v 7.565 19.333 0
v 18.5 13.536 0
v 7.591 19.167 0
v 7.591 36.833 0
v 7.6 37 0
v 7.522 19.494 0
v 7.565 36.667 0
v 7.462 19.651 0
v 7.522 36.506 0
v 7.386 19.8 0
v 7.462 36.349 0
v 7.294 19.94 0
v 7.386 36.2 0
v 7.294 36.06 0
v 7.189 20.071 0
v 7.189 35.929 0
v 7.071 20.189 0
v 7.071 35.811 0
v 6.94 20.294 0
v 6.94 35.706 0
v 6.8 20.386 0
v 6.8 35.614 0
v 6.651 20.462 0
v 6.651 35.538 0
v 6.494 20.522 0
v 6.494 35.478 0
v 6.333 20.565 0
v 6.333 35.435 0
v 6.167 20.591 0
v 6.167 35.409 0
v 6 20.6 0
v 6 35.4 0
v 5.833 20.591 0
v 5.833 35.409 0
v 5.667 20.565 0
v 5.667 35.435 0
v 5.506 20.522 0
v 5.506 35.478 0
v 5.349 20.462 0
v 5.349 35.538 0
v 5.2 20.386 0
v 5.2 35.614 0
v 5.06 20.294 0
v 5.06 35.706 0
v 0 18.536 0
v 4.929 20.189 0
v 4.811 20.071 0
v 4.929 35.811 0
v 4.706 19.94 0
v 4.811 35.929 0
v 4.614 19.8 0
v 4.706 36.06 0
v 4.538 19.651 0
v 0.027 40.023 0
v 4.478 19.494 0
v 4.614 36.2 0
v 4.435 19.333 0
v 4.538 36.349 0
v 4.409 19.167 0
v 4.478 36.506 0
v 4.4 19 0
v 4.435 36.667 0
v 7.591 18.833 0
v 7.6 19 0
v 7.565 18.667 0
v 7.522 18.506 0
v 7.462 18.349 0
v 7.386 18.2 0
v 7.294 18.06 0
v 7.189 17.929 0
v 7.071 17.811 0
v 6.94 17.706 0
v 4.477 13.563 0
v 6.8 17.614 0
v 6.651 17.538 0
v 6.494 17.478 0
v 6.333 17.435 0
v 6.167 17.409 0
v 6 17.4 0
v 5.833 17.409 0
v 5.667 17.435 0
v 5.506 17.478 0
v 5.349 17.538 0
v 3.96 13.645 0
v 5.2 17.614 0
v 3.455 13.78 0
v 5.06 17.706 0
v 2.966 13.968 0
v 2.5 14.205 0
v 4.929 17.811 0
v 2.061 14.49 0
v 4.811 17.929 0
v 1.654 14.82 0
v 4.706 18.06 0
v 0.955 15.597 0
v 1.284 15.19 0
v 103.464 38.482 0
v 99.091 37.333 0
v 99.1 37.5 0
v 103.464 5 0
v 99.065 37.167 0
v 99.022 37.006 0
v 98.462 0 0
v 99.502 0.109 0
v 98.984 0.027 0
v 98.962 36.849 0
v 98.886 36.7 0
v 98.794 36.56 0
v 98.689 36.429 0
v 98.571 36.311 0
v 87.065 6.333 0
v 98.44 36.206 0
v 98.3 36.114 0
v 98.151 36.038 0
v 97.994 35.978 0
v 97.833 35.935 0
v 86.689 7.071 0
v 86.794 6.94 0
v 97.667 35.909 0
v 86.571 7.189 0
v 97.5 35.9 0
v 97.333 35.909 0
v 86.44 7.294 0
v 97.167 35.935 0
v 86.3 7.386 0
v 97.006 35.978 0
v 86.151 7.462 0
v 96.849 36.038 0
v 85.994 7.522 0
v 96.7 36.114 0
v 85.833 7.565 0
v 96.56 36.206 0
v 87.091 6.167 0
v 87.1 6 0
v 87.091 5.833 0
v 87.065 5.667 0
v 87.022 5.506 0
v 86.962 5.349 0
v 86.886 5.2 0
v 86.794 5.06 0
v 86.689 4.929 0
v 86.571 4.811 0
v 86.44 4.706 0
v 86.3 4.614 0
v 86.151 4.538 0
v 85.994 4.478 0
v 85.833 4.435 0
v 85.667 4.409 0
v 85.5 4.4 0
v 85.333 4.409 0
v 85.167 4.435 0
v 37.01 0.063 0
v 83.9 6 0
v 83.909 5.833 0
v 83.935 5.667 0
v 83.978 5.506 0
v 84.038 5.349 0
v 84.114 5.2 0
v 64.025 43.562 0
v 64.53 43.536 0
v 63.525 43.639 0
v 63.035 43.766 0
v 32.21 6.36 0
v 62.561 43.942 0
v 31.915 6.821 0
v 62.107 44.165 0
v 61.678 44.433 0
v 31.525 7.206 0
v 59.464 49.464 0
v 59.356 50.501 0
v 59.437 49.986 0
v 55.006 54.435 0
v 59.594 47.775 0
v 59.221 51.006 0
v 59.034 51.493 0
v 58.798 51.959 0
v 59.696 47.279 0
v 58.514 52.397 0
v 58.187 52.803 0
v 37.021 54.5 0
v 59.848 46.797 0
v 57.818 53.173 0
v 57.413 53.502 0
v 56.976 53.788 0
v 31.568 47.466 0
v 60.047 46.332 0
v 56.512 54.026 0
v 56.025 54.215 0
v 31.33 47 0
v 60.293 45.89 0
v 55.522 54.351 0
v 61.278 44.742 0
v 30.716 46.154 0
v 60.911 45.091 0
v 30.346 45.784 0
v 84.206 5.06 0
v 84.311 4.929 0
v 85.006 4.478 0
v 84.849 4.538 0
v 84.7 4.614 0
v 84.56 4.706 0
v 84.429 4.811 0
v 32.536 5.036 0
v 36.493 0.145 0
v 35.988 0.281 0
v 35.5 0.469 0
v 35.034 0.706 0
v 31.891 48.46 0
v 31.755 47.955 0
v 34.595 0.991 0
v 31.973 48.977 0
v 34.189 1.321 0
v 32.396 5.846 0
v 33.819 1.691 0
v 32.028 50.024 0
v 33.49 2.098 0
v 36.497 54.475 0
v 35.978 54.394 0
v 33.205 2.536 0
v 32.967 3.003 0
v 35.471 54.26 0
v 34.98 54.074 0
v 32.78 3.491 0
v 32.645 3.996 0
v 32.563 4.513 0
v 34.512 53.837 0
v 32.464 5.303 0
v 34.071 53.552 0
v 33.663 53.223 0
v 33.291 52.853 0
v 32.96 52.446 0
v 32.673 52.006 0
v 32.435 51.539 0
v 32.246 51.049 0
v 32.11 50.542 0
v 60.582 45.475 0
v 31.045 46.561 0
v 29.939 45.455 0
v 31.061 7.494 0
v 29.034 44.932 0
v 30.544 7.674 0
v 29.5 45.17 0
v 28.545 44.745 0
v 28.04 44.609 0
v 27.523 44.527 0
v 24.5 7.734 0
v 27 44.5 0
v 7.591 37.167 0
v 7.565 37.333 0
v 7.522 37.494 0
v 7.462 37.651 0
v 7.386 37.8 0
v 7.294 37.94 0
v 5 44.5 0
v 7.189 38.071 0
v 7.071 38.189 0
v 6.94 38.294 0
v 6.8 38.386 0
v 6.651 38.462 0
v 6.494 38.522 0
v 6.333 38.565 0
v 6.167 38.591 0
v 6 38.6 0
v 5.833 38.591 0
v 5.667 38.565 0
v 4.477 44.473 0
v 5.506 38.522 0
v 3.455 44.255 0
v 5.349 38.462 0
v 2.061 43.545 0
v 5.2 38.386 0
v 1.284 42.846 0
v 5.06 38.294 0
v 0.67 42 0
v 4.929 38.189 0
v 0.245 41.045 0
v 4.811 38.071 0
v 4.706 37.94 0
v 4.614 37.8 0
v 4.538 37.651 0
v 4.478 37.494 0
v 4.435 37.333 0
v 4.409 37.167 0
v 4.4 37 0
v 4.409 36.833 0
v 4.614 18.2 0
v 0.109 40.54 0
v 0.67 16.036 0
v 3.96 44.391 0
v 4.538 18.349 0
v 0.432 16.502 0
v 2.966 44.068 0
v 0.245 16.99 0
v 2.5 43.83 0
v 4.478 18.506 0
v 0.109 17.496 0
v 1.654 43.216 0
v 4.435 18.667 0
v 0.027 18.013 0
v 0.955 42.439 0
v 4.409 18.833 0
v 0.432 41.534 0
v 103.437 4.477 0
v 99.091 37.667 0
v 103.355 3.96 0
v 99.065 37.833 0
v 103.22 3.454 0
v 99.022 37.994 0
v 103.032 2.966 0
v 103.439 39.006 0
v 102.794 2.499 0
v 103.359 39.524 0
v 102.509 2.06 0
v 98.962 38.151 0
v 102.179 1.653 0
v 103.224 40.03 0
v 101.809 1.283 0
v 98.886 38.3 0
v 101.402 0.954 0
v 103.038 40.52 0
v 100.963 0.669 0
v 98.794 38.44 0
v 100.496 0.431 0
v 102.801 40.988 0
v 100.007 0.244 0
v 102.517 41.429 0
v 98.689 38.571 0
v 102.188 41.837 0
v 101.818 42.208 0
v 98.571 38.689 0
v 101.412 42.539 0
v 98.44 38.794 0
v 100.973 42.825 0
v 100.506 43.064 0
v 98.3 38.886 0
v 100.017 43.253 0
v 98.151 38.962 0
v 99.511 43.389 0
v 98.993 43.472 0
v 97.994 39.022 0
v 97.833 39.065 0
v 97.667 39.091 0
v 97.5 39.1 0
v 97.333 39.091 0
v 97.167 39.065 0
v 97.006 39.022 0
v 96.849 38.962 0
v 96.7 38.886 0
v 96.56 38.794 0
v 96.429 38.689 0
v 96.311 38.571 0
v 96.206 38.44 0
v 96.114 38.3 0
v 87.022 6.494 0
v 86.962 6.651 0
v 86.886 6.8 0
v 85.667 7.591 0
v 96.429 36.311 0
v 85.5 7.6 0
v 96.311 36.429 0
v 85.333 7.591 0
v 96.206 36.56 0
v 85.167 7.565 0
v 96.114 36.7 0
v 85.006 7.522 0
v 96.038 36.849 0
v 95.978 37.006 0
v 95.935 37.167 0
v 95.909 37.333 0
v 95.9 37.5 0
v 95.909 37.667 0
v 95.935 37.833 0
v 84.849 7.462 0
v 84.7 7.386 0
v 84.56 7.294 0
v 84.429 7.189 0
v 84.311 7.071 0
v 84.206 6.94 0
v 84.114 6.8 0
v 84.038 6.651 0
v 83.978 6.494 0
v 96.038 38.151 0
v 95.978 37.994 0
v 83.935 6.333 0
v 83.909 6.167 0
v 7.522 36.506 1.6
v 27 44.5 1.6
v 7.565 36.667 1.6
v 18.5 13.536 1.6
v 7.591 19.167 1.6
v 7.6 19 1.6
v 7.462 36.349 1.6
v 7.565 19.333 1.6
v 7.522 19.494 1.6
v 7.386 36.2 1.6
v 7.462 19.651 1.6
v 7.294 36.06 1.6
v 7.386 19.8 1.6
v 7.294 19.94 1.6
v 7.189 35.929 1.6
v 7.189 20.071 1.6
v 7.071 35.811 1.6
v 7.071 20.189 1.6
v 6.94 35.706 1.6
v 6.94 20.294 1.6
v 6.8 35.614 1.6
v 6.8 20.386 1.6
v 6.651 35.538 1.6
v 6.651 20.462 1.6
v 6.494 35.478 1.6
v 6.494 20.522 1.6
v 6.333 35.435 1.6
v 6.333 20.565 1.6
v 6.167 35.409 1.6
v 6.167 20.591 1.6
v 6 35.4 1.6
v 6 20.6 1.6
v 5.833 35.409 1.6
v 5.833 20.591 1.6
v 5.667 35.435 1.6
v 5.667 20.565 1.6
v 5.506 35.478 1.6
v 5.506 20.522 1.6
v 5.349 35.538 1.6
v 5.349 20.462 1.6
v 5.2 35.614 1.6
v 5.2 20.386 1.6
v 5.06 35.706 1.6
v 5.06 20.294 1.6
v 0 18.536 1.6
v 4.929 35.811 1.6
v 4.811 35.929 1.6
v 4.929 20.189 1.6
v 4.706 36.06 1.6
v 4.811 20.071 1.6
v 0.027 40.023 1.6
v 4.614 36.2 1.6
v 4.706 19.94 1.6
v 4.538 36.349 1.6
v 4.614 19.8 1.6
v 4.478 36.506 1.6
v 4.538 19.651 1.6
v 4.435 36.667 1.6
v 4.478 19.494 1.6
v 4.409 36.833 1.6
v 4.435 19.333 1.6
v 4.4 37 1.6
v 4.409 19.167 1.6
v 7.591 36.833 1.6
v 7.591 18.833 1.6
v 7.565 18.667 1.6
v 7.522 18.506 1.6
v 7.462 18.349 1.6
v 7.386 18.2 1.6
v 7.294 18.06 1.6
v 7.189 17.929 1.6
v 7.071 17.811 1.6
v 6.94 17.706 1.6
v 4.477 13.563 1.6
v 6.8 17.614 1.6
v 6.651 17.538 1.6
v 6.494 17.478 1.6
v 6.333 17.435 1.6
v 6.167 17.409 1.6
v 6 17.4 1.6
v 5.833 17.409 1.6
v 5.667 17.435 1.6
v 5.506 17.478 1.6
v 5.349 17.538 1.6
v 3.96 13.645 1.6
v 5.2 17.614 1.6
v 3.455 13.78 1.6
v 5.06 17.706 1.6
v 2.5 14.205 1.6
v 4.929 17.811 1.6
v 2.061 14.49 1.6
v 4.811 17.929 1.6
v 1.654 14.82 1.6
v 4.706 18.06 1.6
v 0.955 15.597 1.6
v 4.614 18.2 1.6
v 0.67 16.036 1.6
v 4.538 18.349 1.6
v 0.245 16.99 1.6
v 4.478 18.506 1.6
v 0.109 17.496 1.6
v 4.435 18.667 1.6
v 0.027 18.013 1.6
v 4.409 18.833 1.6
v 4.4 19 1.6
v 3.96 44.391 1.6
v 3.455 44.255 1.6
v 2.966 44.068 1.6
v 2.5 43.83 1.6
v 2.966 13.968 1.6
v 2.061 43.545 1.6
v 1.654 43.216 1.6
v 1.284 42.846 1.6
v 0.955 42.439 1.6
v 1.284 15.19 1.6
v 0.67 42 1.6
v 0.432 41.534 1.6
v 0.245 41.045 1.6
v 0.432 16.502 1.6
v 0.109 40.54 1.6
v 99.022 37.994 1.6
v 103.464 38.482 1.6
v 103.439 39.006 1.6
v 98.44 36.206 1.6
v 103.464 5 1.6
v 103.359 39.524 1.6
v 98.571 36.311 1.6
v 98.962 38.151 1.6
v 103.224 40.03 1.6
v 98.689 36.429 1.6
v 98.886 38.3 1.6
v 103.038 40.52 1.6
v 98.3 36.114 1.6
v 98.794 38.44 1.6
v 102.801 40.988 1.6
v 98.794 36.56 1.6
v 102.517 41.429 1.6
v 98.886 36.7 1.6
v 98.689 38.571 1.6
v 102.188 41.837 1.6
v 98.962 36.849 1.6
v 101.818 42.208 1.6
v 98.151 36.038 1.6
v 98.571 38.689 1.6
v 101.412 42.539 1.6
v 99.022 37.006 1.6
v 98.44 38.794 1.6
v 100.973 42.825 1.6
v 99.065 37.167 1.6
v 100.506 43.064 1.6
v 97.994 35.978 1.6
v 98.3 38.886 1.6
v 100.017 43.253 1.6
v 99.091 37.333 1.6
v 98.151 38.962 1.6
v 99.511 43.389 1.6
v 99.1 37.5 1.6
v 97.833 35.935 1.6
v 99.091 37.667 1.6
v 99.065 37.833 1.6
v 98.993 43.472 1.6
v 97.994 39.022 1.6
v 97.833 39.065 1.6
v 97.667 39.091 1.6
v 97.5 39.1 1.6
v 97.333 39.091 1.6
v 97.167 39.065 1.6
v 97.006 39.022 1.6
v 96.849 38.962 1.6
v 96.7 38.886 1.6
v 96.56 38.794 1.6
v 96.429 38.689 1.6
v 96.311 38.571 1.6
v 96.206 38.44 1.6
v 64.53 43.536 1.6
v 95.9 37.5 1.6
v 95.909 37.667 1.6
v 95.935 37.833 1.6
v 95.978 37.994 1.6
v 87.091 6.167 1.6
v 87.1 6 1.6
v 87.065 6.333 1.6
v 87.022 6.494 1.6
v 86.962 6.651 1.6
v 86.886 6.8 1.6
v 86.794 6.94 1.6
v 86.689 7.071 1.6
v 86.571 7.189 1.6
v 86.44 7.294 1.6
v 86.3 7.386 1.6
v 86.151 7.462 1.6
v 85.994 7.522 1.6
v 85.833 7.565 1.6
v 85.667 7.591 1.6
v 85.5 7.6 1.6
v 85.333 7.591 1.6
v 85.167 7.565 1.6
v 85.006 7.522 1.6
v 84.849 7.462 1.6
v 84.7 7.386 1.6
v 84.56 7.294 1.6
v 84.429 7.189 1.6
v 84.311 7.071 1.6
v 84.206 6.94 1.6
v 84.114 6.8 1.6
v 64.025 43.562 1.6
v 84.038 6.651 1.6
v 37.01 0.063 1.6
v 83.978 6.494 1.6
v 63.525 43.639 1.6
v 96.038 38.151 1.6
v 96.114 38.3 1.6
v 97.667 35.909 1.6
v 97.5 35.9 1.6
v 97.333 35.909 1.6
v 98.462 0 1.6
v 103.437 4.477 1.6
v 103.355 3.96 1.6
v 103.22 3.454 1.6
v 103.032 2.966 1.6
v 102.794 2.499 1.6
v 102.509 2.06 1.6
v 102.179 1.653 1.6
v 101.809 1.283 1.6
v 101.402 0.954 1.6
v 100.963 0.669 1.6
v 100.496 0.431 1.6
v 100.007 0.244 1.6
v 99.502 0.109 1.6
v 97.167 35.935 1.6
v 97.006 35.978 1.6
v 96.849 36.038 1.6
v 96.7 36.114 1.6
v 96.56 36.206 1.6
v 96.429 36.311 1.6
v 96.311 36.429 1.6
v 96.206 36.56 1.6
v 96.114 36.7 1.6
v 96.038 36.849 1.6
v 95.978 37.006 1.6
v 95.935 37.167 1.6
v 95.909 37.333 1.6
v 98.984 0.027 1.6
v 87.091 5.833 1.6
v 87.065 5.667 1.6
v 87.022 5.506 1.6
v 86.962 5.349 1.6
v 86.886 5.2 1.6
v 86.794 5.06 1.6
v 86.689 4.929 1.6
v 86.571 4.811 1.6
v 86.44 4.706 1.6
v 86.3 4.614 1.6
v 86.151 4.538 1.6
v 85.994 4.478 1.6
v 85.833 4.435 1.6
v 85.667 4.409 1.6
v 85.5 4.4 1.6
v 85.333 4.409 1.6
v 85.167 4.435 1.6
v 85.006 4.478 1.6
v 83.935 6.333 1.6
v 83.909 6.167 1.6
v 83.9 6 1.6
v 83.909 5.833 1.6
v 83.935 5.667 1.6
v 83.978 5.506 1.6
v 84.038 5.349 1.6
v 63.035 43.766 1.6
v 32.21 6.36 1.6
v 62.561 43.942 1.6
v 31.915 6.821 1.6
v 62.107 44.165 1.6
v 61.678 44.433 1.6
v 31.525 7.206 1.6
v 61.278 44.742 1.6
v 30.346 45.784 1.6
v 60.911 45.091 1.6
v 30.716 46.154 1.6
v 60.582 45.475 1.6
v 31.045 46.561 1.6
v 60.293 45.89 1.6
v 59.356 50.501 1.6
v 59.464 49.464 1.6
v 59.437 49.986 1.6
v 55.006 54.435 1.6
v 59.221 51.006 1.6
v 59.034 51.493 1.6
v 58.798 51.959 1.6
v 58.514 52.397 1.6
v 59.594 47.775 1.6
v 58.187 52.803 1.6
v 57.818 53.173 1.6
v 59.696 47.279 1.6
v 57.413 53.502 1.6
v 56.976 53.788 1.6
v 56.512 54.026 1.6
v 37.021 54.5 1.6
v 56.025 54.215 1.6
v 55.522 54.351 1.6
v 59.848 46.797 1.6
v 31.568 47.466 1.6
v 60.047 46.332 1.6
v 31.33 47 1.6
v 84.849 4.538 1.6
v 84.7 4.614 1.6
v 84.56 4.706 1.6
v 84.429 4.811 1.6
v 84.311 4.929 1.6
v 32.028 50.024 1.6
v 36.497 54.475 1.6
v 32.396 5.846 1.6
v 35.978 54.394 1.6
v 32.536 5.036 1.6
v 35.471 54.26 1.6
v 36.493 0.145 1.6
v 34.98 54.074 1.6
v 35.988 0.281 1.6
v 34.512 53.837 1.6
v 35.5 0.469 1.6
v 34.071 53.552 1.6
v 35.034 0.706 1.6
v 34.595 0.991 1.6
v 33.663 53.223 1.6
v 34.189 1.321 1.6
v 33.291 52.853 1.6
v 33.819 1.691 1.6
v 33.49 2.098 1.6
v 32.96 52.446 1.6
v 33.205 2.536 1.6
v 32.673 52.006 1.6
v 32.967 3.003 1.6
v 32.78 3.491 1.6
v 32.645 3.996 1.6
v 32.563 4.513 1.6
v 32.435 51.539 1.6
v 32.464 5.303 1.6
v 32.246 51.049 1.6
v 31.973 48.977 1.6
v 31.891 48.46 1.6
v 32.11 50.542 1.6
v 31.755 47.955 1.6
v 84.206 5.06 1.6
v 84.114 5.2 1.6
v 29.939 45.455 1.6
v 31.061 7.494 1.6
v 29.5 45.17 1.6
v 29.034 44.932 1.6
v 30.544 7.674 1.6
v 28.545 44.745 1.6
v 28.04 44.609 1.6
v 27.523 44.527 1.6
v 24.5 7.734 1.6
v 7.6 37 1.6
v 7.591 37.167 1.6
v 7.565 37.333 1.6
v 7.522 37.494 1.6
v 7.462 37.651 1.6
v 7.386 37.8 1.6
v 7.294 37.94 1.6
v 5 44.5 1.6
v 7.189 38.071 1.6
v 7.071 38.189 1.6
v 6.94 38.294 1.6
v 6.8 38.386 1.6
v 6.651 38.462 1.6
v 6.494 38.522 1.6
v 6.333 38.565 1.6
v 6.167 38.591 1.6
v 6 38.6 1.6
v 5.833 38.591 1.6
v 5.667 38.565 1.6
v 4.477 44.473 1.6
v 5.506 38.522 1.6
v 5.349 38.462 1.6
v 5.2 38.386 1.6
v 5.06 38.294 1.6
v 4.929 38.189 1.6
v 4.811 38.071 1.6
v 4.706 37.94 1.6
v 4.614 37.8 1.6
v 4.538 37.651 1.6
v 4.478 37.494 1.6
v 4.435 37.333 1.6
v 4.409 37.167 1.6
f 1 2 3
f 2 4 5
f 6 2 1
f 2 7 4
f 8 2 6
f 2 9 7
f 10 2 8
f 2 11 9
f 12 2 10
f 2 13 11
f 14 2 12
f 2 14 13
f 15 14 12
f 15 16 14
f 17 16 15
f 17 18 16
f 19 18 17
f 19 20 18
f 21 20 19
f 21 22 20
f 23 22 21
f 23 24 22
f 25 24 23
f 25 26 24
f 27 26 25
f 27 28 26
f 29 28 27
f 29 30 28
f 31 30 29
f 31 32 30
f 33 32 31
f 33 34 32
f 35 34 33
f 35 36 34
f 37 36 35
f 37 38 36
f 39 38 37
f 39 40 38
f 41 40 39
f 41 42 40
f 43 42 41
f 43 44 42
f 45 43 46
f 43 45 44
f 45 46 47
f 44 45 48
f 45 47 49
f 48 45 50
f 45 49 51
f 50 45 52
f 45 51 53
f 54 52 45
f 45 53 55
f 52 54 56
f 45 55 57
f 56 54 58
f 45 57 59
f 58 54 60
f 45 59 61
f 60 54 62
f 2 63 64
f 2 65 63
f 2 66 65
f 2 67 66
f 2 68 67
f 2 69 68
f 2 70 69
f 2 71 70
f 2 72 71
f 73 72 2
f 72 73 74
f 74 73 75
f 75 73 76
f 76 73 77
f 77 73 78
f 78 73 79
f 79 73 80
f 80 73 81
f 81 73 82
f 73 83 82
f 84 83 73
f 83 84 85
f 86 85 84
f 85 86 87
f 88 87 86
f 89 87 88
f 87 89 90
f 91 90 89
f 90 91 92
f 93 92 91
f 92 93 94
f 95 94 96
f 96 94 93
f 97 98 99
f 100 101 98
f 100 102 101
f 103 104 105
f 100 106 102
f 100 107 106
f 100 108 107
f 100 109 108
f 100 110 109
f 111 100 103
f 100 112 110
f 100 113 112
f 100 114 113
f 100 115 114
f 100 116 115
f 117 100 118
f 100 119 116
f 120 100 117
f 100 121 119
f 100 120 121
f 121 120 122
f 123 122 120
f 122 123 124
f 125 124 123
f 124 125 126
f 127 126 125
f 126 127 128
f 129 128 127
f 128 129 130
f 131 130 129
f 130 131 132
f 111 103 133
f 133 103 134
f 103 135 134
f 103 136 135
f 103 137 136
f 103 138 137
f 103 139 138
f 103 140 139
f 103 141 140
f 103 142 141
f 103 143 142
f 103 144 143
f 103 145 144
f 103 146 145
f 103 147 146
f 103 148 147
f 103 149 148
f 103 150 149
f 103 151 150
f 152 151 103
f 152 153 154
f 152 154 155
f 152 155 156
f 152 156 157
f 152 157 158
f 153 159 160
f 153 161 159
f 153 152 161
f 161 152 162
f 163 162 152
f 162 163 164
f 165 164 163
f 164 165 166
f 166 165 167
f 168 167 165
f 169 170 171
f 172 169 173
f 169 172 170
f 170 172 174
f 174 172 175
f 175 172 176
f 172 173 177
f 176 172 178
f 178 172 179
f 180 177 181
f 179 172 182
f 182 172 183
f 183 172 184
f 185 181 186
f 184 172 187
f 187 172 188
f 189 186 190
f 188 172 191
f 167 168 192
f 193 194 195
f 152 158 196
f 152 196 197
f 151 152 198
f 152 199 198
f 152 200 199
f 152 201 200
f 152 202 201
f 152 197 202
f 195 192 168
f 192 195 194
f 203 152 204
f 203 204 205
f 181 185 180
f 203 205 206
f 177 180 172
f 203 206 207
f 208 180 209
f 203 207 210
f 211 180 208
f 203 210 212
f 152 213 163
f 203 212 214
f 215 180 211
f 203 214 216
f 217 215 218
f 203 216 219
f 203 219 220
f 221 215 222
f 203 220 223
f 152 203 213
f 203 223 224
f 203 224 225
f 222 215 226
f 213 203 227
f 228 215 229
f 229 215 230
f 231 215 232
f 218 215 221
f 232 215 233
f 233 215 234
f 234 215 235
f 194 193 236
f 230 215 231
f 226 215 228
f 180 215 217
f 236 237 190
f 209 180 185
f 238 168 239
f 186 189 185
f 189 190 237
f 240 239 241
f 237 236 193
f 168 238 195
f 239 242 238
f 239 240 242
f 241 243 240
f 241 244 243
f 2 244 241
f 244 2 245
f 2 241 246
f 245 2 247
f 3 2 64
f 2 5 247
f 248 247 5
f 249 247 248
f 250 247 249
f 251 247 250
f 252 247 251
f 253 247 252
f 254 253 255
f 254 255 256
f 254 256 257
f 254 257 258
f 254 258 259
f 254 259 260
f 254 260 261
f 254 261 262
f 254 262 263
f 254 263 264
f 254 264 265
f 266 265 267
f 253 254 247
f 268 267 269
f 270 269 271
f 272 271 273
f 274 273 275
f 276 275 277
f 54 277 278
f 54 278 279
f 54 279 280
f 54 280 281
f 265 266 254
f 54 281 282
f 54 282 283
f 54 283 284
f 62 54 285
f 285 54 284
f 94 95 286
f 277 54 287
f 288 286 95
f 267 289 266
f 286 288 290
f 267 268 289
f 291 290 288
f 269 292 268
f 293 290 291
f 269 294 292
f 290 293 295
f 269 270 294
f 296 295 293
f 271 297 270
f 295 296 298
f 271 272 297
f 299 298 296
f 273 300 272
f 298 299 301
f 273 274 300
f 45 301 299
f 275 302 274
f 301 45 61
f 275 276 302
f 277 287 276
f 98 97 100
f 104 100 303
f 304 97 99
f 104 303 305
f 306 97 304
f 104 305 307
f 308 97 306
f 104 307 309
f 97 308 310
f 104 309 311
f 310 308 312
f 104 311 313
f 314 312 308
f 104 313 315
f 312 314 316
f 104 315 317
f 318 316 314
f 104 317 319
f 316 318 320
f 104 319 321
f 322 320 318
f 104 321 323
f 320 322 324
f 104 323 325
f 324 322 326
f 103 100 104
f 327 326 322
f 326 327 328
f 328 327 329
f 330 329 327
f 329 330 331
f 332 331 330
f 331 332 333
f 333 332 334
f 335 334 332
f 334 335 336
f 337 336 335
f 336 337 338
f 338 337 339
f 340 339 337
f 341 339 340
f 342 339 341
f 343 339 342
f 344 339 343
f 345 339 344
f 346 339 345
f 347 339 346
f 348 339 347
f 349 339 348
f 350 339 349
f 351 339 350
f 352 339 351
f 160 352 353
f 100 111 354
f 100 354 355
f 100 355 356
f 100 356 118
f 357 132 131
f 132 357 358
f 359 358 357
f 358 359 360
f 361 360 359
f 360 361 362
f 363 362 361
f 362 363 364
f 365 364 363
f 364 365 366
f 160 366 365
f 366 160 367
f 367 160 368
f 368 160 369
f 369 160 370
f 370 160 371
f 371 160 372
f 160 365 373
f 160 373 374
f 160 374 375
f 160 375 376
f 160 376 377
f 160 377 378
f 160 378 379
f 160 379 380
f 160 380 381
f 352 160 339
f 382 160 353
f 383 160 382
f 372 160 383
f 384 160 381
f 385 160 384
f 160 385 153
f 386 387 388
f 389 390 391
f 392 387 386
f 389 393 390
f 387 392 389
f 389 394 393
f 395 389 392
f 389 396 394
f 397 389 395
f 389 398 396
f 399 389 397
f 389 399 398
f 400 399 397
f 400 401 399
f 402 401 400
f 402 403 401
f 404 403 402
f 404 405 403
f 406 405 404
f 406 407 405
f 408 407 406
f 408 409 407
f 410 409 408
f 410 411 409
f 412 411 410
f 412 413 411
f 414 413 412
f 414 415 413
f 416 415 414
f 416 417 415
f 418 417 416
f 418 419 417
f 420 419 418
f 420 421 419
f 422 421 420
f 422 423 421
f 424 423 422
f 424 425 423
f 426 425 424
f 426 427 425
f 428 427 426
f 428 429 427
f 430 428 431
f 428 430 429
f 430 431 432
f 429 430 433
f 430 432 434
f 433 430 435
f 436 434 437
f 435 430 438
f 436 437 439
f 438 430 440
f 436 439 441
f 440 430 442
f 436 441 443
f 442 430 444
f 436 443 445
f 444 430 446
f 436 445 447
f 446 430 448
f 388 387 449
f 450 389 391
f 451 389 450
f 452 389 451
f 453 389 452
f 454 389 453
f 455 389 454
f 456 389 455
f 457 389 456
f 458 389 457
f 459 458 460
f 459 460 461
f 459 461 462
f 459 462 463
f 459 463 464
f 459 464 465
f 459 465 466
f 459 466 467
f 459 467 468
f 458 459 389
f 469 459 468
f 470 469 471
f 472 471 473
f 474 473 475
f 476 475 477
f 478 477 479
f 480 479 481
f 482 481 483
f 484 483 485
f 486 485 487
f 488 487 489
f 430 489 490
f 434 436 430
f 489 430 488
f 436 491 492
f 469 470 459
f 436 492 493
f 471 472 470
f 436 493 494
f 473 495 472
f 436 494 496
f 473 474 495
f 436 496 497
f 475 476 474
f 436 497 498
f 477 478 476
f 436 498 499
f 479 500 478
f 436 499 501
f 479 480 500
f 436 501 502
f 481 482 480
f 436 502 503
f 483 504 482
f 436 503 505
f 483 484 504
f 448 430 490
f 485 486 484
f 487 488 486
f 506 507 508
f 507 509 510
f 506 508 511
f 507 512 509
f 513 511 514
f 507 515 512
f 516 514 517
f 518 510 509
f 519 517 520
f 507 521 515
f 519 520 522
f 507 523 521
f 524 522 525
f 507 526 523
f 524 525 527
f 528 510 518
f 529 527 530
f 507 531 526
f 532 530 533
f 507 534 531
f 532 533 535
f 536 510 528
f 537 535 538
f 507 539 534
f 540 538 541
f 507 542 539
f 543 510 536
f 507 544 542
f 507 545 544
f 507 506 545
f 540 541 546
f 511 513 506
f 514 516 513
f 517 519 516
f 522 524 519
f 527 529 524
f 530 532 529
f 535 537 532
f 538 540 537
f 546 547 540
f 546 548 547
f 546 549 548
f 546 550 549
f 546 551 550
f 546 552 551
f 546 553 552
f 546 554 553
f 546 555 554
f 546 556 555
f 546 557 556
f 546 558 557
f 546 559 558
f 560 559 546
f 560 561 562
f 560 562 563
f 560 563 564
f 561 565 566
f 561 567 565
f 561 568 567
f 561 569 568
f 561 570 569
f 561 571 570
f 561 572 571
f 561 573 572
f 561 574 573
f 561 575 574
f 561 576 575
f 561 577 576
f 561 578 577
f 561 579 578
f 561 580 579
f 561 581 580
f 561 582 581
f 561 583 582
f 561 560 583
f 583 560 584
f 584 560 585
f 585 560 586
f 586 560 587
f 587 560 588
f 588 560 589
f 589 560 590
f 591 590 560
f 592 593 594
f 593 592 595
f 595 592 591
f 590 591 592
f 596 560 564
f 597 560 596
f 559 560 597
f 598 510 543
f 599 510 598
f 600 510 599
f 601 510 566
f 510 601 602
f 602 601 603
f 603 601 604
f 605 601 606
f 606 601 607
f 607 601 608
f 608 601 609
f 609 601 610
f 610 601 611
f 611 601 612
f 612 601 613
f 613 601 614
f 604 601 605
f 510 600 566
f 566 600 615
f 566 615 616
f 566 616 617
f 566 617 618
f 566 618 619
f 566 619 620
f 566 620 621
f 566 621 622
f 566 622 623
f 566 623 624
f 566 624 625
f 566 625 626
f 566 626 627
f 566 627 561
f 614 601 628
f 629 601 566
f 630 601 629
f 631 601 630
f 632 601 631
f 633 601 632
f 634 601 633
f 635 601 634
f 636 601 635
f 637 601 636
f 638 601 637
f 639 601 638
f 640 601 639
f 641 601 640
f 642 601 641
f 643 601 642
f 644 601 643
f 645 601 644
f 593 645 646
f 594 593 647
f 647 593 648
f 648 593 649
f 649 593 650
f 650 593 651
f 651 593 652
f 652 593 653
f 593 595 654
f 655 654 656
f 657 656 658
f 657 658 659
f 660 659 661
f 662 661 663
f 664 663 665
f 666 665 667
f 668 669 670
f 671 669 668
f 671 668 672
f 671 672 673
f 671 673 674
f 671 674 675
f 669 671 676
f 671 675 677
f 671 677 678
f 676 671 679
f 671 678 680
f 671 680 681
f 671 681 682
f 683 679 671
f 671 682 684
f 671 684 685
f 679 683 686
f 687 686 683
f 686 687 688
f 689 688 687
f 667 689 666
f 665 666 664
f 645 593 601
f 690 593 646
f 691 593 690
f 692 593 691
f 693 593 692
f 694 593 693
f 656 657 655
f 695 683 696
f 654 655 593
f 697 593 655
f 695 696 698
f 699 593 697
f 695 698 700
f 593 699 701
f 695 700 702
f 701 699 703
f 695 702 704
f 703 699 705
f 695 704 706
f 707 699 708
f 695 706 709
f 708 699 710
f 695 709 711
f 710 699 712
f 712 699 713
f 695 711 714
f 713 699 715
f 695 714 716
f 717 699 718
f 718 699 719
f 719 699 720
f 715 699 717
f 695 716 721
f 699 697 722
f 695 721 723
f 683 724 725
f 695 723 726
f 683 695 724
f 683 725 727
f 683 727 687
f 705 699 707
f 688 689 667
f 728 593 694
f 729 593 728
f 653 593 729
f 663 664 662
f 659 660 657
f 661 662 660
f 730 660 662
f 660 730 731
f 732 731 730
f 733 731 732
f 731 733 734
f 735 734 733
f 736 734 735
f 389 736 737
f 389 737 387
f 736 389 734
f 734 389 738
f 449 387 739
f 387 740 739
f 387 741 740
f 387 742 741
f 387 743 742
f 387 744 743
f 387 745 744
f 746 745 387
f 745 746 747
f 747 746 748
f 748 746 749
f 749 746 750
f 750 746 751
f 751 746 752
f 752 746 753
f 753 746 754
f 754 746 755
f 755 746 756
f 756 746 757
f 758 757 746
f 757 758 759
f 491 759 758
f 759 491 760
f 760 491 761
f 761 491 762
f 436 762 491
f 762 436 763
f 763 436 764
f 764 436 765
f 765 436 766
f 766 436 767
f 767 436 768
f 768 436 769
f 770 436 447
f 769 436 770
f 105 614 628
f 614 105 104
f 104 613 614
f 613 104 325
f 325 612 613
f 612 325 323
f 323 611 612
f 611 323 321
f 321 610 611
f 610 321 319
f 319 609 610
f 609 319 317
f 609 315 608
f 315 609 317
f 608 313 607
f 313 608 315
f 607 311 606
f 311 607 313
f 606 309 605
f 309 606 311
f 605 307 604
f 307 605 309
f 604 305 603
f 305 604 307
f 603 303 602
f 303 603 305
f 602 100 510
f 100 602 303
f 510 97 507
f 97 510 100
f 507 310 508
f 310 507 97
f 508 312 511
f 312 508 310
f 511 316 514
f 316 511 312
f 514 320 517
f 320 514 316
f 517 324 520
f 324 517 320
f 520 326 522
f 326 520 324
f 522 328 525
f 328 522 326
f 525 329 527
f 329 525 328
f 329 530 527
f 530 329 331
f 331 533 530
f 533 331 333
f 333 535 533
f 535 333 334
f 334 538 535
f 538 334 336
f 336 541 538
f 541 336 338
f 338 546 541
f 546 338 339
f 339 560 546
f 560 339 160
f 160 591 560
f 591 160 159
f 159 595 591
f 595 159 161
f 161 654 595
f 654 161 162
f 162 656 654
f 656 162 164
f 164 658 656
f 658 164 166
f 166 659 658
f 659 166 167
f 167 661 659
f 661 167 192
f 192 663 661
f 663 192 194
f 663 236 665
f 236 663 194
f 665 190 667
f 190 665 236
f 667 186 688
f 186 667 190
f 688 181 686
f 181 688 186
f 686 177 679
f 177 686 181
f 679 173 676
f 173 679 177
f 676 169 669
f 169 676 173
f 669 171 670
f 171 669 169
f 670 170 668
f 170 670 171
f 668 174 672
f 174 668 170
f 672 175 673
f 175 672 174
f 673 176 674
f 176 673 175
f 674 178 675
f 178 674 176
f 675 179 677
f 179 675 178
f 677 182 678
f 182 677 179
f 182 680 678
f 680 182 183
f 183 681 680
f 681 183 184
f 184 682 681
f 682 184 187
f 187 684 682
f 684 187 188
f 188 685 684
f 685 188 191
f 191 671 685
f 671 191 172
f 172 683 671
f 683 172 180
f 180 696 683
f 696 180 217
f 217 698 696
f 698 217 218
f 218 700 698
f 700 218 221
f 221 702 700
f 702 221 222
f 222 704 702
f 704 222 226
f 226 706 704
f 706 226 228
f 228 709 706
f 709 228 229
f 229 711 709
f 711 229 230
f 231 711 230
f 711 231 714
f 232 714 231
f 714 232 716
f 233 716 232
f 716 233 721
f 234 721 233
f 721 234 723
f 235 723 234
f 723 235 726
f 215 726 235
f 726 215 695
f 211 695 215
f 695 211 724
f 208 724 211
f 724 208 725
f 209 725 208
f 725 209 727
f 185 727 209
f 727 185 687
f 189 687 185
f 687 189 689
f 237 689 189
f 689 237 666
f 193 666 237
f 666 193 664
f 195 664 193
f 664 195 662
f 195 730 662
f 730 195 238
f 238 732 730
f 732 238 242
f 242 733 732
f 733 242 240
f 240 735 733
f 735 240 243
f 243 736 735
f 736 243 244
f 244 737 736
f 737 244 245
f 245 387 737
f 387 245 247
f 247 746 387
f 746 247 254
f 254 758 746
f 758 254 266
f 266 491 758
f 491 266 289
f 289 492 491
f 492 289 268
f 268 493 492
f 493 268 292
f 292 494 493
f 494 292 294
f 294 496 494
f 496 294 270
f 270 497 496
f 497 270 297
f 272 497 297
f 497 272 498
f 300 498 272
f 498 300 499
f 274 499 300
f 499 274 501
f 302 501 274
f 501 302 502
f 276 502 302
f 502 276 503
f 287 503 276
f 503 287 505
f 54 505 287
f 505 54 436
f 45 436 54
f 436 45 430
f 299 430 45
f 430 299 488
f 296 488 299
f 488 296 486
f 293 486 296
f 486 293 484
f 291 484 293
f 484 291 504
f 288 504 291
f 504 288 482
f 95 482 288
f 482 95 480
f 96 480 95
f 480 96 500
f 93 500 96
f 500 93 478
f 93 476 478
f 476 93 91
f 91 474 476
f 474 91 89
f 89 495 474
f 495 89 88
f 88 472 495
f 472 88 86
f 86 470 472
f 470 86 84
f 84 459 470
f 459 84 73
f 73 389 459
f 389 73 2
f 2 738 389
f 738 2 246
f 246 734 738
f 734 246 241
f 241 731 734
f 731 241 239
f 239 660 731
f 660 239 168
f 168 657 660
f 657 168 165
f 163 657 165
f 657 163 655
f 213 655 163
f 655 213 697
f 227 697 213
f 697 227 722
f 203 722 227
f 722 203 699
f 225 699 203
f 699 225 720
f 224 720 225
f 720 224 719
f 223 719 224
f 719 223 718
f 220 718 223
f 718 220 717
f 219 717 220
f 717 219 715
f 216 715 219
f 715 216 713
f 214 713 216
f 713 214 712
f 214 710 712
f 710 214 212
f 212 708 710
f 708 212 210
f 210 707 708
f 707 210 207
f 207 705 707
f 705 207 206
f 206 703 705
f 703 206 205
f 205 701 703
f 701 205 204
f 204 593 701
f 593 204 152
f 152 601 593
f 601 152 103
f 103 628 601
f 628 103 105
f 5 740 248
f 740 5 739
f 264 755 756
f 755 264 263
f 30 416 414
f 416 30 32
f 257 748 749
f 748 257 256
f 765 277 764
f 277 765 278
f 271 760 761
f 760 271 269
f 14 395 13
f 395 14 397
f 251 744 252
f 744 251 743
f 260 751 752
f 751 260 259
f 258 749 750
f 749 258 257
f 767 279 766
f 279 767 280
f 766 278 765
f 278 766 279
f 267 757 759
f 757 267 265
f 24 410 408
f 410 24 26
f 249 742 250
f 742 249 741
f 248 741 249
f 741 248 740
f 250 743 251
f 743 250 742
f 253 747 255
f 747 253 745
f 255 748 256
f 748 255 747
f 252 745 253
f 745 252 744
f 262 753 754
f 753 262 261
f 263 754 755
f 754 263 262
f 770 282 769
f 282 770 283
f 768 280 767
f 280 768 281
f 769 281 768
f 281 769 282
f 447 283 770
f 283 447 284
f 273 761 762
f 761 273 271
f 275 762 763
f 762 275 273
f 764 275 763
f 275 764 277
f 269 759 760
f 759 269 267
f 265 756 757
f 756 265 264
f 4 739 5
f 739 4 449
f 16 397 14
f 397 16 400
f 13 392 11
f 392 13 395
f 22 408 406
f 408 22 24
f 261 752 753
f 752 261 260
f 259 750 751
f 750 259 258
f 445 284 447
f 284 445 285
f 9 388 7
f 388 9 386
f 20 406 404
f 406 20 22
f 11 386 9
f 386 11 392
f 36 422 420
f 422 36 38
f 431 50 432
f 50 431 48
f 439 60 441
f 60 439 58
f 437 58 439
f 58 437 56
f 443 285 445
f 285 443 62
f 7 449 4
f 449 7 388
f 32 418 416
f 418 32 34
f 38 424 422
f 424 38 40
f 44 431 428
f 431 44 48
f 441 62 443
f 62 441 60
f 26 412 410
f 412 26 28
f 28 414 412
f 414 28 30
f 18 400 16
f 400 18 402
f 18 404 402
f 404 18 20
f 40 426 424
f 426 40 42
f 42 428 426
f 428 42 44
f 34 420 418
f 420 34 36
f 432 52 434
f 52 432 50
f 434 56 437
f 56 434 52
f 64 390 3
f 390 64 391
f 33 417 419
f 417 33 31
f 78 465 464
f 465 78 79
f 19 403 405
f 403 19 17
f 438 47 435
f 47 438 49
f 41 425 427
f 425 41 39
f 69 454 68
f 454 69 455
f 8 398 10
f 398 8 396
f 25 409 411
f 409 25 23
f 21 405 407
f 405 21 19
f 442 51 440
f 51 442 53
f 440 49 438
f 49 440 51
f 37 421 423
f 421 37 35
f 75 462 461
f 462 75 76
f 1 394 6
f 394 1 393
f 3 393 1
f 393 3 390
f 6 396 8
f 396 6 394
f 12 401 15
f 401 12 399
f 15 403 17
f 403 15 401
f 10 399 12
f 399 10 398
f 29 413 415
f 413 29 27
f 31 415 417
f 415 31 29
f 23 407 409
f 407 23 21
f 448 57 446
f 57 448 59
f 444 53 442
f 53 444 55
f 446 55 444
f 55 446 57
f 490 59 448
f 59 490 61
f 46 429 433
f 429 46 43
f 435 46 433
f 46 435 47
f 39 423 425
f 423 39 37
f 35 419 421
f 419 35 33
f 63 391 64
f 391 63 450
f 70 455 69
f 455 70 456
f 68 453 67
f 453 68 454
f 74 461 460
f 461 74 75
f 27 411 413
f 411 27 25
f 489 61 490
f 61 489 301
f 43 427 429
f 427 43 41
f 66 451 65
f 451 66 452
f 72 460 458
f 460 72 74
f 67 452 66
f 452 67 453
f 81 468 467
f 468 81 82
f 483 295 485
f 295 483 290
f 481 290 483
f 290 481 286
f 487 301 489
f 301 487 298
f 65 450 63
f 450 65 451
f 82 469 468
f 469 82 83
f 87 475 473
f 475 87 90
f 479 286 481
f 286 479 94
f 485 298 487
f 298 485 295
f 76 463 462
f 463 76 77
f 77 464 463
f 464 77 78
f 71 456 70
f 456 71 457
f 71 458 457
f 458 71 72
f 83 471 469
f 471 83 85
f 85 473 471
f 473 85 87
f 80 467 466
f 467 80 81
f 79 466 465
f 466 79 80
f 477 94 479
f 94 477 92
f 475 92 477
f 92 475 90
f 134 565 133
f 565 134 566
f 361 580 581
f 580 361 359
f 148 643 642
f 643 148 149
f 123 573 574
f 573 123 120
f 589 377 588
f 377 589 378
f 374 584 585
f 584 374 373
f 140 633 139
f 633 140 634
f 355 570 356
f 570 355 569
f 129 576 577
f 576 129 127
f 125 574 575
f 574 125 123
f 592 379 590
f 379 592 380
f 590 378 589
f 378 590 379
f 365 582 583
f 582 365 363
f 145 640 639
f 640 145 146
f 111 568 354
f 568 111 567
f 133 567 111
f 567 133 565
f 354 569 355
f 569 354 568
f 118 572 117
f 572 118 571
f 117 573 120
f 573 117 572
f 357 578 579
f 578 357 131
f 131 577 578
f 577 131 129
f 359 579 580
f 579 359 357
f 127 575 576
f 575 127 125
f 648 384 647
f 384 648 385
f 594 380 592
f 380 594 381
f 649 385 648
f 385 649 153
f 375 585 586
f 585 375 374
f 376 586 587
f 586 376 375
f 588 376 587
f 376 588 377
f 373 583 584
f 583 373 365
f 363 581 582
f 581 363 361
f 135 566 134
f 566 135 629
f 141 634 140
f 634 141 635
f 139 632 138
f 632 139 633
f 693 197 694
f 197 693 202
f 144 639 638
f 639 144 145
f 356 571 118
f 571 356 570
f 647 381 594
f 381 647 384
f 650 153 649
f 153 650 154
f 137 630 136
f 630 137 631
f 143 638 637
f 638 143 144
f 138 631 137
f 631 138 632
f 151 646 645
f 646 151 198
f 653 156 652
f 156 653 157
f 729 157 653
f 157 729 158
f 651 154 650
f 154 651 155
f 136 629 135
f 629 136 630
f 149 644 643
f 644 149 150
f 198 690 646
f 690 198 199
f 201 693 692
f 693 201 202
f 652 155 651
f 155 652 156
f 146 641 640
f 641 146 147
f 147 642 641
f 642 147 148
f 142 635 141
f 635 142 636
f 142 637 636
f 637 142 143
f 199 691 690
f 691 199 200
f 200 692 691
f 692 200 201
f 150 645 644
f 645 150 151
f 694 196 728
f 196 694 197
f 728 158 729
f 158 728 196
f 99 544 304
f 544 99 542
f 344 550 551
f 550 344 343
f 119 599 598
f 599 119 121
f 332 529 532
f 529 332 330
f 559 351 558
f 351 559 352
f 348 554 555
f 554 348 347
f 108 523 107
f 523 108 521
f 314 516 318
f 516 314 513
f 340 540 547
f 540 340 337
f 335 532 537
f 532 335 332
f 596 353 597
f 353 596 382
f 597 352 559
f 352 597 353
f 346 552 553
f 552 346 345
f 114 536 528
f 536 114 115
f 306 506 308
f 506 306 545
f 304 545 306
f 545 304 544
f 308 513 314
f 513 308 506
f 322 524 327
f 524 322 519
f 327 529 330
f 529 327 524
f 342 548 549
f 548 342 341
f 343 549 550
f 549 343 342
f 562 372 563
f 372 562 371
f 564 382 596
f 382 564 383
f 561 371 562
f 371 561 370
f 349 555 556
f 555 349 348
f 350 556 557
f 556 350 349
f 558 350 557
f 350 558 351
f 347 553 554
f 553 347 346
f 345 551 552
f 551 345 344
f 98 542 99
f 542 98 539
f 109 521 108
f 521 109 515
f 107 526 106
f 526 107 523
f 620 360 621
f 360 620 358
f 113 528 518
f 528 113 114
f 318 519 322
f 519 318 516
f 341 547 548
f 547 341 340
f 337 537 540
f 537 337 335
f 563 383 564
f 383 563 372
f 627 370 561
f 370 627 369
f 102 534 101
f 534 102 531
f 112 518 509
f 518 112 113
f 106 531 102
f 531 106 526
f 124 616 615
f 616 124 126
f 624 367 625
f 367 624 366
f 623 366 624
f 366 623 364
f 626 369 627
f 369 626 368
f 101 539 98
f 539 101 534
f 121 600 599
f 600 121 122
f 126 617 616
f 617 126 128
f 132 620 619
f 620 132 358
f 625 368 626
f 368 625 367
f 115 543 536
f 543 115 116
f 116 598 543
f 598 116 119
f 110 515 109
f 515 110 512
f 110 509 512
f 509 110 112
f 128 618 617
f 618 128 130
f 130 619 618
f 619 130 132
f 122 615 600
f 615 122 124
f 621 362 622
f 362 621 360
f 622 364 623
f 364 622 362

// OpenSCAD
// BMO Controller - Exact G-Code Reconstruction
// 154 points extracted directly from Gerber file
// Units: mm

$fn = 60;

module bmo_exact_shape() {
    linear_extrude(height = 1.6) {
        polygon(points=[
            // The exact outline path from your Gerber
            [98.462, 0.0], [37.01, 0.063], [36.493, 0.145], [35.988, 0.281], [35.5, 0.469], 
            [35.034, 0.706], [34.595, 0.991], [34.189, 1.321], [33.819, 1.691], [33.49, 2.098], 
            [33.205, 2.536], [32.967, 3.003], [32.78, 3.491], [32.645, 3.996], [32.563, 4.513], 
            [32.536, 5.036], [32.464, 5.303], [32.396, 5.846], [32.21, 6.36], [31.915, 6.821], 
            [31.525, 7.206], [31.061, 7.494], [30.544, 7.674], [24.5, 7.734], [18.5, 13.536], 
            [4.477, 13.563], [3.96, 13.645], [3.455, 13.78], [2.966, 13.968], [2.5, 14.205], 
            [2.061, 14.49], [1.654, 14.82], [1.284, 15.19], [0.955, 15.597], [0.67, 16.036], 
            [0.432, 16.502], [0.245, 16.99], [0.109, 17.496], [0.027, 18.013], [0.0, 18.536], 
            [0.027, 40.023], [0.109, 40.54], [0.245, 41.045], [0.432, 41.534], [0.67, 42.0], 
            [0.955, 42.439], [1.284, 42.846], [1.654, 43.216], [2.061, 43.545], [2.5, 43.83], 
            [2.966, 44.068], [3.455, 44.255], [3.96, 44.391], [4.477, 44.473], [5.0, 44.5], 
            [27.0, 44.5], [27.523, 44.527], [28.04, 44.609], [28.545, 44.745], [29.034, 44.932], 
            [29.5, 45.17], [29.939, 45.455], [30.346, 45.784], [30.716, 46.154], [31.045, 46.561], 
            [31.33, 47.0], [31.568, 47.466], [31.755, 47.955], [31.891, 48.46], [31.973, 48.977], 
            [32.028, 50.024], [32.11, 50.542], [32.246, 51.049], [32.435, 51.539], [32.673, 52.006], 
            [32.96, 52.446], [33.291, 52.853], [33.663, 53.223], [34.071, 53.552], [34.512, 53.837], 
            [34.98, 54.074], [35.471, 54.26], [35.978, 54.394], [36.497, 54.475], [37.021, 54.5], 
            [55.006, 54.435], [55.522, 54.351], [56.025, 54.215], [56.512, 54.026], [56.976, 53.788], 
            [57.413, 53.502], [57.818, 53.173], [58.187, 52.803], [58.514, 52.397], [58.798, 51.959], 
            [59.034, 51.493], [59.221, 51.006], [59.356, 50.501], [59.437, 49.986], [59.464, 49.464], 
            [59.594, 47.775], [59.696, 47.279], [59.848, 46.797], [60.047, 46.332], [60.293, 45.89], 
            [60.582, 45.475], [60.911, 45.091], [61.278, 44.742], [61.678, 44.433], [62.107, 44.165], 
            [62.561, 43.942], [63.035, 43.766], [63.525, 43.639], [64.025, 43.562], [64.53, 43.536], 
            [98.993, 43.472], [99.511, 43.389], [100.017, 43.253], [100.506, 43.064], [100.973, 42.825], 
            [101.412, 42.539], [101.818, 42.208], [102.188, 41.837], [102.517, 41.429], [102.801, 40.988], 
            [103.038, 40.52], [103.224, 40.03], [103.359, 39.524], [103.439, 39.006], [103.464, 38.482], 
            [103.464, 5.0], [103.437, 4.477], [103.355, 3.96], [103.22, 3.454], [103.032, 2.966], 
            [102.794, 2.499], [102.509, 2.06], [102.179, 1.653], [101.809, 1.283], [101.402, 0.954], 
            [100.963, 0.669], [100.496, 0.431], [100.007, 0.244], [99.502, 0.109], [98.984, 0.027]
        ]);
    }
}

difference() {
    bmo_exact_shape();

    // MOUNTING HOLES (Exact from Drill File)
    // Normalized to match the new 0,0 origin
    
    // Hole 1: Top Left
    translate([91.5 - 85.5, -78.5 + 115.5, -1]) cylinder(h=5, d=3.2);

    // Hole 2: Bottom Left
    translate([91.5 - 85.5, -96.5 + 115.5, -1]) cylinder(h=5, d=3.2);

    // Hole 3: Bottom Right
    translate([171.0 - 85.5, -109.5 + 115.5, -1]) cylinder(h=5, d=3.2);

    // Hole 4: Top Right
    translate([183.0 - 85.5, -78.0 + 115.5, -1]) cylinder(h=5, d=3.2);
}
